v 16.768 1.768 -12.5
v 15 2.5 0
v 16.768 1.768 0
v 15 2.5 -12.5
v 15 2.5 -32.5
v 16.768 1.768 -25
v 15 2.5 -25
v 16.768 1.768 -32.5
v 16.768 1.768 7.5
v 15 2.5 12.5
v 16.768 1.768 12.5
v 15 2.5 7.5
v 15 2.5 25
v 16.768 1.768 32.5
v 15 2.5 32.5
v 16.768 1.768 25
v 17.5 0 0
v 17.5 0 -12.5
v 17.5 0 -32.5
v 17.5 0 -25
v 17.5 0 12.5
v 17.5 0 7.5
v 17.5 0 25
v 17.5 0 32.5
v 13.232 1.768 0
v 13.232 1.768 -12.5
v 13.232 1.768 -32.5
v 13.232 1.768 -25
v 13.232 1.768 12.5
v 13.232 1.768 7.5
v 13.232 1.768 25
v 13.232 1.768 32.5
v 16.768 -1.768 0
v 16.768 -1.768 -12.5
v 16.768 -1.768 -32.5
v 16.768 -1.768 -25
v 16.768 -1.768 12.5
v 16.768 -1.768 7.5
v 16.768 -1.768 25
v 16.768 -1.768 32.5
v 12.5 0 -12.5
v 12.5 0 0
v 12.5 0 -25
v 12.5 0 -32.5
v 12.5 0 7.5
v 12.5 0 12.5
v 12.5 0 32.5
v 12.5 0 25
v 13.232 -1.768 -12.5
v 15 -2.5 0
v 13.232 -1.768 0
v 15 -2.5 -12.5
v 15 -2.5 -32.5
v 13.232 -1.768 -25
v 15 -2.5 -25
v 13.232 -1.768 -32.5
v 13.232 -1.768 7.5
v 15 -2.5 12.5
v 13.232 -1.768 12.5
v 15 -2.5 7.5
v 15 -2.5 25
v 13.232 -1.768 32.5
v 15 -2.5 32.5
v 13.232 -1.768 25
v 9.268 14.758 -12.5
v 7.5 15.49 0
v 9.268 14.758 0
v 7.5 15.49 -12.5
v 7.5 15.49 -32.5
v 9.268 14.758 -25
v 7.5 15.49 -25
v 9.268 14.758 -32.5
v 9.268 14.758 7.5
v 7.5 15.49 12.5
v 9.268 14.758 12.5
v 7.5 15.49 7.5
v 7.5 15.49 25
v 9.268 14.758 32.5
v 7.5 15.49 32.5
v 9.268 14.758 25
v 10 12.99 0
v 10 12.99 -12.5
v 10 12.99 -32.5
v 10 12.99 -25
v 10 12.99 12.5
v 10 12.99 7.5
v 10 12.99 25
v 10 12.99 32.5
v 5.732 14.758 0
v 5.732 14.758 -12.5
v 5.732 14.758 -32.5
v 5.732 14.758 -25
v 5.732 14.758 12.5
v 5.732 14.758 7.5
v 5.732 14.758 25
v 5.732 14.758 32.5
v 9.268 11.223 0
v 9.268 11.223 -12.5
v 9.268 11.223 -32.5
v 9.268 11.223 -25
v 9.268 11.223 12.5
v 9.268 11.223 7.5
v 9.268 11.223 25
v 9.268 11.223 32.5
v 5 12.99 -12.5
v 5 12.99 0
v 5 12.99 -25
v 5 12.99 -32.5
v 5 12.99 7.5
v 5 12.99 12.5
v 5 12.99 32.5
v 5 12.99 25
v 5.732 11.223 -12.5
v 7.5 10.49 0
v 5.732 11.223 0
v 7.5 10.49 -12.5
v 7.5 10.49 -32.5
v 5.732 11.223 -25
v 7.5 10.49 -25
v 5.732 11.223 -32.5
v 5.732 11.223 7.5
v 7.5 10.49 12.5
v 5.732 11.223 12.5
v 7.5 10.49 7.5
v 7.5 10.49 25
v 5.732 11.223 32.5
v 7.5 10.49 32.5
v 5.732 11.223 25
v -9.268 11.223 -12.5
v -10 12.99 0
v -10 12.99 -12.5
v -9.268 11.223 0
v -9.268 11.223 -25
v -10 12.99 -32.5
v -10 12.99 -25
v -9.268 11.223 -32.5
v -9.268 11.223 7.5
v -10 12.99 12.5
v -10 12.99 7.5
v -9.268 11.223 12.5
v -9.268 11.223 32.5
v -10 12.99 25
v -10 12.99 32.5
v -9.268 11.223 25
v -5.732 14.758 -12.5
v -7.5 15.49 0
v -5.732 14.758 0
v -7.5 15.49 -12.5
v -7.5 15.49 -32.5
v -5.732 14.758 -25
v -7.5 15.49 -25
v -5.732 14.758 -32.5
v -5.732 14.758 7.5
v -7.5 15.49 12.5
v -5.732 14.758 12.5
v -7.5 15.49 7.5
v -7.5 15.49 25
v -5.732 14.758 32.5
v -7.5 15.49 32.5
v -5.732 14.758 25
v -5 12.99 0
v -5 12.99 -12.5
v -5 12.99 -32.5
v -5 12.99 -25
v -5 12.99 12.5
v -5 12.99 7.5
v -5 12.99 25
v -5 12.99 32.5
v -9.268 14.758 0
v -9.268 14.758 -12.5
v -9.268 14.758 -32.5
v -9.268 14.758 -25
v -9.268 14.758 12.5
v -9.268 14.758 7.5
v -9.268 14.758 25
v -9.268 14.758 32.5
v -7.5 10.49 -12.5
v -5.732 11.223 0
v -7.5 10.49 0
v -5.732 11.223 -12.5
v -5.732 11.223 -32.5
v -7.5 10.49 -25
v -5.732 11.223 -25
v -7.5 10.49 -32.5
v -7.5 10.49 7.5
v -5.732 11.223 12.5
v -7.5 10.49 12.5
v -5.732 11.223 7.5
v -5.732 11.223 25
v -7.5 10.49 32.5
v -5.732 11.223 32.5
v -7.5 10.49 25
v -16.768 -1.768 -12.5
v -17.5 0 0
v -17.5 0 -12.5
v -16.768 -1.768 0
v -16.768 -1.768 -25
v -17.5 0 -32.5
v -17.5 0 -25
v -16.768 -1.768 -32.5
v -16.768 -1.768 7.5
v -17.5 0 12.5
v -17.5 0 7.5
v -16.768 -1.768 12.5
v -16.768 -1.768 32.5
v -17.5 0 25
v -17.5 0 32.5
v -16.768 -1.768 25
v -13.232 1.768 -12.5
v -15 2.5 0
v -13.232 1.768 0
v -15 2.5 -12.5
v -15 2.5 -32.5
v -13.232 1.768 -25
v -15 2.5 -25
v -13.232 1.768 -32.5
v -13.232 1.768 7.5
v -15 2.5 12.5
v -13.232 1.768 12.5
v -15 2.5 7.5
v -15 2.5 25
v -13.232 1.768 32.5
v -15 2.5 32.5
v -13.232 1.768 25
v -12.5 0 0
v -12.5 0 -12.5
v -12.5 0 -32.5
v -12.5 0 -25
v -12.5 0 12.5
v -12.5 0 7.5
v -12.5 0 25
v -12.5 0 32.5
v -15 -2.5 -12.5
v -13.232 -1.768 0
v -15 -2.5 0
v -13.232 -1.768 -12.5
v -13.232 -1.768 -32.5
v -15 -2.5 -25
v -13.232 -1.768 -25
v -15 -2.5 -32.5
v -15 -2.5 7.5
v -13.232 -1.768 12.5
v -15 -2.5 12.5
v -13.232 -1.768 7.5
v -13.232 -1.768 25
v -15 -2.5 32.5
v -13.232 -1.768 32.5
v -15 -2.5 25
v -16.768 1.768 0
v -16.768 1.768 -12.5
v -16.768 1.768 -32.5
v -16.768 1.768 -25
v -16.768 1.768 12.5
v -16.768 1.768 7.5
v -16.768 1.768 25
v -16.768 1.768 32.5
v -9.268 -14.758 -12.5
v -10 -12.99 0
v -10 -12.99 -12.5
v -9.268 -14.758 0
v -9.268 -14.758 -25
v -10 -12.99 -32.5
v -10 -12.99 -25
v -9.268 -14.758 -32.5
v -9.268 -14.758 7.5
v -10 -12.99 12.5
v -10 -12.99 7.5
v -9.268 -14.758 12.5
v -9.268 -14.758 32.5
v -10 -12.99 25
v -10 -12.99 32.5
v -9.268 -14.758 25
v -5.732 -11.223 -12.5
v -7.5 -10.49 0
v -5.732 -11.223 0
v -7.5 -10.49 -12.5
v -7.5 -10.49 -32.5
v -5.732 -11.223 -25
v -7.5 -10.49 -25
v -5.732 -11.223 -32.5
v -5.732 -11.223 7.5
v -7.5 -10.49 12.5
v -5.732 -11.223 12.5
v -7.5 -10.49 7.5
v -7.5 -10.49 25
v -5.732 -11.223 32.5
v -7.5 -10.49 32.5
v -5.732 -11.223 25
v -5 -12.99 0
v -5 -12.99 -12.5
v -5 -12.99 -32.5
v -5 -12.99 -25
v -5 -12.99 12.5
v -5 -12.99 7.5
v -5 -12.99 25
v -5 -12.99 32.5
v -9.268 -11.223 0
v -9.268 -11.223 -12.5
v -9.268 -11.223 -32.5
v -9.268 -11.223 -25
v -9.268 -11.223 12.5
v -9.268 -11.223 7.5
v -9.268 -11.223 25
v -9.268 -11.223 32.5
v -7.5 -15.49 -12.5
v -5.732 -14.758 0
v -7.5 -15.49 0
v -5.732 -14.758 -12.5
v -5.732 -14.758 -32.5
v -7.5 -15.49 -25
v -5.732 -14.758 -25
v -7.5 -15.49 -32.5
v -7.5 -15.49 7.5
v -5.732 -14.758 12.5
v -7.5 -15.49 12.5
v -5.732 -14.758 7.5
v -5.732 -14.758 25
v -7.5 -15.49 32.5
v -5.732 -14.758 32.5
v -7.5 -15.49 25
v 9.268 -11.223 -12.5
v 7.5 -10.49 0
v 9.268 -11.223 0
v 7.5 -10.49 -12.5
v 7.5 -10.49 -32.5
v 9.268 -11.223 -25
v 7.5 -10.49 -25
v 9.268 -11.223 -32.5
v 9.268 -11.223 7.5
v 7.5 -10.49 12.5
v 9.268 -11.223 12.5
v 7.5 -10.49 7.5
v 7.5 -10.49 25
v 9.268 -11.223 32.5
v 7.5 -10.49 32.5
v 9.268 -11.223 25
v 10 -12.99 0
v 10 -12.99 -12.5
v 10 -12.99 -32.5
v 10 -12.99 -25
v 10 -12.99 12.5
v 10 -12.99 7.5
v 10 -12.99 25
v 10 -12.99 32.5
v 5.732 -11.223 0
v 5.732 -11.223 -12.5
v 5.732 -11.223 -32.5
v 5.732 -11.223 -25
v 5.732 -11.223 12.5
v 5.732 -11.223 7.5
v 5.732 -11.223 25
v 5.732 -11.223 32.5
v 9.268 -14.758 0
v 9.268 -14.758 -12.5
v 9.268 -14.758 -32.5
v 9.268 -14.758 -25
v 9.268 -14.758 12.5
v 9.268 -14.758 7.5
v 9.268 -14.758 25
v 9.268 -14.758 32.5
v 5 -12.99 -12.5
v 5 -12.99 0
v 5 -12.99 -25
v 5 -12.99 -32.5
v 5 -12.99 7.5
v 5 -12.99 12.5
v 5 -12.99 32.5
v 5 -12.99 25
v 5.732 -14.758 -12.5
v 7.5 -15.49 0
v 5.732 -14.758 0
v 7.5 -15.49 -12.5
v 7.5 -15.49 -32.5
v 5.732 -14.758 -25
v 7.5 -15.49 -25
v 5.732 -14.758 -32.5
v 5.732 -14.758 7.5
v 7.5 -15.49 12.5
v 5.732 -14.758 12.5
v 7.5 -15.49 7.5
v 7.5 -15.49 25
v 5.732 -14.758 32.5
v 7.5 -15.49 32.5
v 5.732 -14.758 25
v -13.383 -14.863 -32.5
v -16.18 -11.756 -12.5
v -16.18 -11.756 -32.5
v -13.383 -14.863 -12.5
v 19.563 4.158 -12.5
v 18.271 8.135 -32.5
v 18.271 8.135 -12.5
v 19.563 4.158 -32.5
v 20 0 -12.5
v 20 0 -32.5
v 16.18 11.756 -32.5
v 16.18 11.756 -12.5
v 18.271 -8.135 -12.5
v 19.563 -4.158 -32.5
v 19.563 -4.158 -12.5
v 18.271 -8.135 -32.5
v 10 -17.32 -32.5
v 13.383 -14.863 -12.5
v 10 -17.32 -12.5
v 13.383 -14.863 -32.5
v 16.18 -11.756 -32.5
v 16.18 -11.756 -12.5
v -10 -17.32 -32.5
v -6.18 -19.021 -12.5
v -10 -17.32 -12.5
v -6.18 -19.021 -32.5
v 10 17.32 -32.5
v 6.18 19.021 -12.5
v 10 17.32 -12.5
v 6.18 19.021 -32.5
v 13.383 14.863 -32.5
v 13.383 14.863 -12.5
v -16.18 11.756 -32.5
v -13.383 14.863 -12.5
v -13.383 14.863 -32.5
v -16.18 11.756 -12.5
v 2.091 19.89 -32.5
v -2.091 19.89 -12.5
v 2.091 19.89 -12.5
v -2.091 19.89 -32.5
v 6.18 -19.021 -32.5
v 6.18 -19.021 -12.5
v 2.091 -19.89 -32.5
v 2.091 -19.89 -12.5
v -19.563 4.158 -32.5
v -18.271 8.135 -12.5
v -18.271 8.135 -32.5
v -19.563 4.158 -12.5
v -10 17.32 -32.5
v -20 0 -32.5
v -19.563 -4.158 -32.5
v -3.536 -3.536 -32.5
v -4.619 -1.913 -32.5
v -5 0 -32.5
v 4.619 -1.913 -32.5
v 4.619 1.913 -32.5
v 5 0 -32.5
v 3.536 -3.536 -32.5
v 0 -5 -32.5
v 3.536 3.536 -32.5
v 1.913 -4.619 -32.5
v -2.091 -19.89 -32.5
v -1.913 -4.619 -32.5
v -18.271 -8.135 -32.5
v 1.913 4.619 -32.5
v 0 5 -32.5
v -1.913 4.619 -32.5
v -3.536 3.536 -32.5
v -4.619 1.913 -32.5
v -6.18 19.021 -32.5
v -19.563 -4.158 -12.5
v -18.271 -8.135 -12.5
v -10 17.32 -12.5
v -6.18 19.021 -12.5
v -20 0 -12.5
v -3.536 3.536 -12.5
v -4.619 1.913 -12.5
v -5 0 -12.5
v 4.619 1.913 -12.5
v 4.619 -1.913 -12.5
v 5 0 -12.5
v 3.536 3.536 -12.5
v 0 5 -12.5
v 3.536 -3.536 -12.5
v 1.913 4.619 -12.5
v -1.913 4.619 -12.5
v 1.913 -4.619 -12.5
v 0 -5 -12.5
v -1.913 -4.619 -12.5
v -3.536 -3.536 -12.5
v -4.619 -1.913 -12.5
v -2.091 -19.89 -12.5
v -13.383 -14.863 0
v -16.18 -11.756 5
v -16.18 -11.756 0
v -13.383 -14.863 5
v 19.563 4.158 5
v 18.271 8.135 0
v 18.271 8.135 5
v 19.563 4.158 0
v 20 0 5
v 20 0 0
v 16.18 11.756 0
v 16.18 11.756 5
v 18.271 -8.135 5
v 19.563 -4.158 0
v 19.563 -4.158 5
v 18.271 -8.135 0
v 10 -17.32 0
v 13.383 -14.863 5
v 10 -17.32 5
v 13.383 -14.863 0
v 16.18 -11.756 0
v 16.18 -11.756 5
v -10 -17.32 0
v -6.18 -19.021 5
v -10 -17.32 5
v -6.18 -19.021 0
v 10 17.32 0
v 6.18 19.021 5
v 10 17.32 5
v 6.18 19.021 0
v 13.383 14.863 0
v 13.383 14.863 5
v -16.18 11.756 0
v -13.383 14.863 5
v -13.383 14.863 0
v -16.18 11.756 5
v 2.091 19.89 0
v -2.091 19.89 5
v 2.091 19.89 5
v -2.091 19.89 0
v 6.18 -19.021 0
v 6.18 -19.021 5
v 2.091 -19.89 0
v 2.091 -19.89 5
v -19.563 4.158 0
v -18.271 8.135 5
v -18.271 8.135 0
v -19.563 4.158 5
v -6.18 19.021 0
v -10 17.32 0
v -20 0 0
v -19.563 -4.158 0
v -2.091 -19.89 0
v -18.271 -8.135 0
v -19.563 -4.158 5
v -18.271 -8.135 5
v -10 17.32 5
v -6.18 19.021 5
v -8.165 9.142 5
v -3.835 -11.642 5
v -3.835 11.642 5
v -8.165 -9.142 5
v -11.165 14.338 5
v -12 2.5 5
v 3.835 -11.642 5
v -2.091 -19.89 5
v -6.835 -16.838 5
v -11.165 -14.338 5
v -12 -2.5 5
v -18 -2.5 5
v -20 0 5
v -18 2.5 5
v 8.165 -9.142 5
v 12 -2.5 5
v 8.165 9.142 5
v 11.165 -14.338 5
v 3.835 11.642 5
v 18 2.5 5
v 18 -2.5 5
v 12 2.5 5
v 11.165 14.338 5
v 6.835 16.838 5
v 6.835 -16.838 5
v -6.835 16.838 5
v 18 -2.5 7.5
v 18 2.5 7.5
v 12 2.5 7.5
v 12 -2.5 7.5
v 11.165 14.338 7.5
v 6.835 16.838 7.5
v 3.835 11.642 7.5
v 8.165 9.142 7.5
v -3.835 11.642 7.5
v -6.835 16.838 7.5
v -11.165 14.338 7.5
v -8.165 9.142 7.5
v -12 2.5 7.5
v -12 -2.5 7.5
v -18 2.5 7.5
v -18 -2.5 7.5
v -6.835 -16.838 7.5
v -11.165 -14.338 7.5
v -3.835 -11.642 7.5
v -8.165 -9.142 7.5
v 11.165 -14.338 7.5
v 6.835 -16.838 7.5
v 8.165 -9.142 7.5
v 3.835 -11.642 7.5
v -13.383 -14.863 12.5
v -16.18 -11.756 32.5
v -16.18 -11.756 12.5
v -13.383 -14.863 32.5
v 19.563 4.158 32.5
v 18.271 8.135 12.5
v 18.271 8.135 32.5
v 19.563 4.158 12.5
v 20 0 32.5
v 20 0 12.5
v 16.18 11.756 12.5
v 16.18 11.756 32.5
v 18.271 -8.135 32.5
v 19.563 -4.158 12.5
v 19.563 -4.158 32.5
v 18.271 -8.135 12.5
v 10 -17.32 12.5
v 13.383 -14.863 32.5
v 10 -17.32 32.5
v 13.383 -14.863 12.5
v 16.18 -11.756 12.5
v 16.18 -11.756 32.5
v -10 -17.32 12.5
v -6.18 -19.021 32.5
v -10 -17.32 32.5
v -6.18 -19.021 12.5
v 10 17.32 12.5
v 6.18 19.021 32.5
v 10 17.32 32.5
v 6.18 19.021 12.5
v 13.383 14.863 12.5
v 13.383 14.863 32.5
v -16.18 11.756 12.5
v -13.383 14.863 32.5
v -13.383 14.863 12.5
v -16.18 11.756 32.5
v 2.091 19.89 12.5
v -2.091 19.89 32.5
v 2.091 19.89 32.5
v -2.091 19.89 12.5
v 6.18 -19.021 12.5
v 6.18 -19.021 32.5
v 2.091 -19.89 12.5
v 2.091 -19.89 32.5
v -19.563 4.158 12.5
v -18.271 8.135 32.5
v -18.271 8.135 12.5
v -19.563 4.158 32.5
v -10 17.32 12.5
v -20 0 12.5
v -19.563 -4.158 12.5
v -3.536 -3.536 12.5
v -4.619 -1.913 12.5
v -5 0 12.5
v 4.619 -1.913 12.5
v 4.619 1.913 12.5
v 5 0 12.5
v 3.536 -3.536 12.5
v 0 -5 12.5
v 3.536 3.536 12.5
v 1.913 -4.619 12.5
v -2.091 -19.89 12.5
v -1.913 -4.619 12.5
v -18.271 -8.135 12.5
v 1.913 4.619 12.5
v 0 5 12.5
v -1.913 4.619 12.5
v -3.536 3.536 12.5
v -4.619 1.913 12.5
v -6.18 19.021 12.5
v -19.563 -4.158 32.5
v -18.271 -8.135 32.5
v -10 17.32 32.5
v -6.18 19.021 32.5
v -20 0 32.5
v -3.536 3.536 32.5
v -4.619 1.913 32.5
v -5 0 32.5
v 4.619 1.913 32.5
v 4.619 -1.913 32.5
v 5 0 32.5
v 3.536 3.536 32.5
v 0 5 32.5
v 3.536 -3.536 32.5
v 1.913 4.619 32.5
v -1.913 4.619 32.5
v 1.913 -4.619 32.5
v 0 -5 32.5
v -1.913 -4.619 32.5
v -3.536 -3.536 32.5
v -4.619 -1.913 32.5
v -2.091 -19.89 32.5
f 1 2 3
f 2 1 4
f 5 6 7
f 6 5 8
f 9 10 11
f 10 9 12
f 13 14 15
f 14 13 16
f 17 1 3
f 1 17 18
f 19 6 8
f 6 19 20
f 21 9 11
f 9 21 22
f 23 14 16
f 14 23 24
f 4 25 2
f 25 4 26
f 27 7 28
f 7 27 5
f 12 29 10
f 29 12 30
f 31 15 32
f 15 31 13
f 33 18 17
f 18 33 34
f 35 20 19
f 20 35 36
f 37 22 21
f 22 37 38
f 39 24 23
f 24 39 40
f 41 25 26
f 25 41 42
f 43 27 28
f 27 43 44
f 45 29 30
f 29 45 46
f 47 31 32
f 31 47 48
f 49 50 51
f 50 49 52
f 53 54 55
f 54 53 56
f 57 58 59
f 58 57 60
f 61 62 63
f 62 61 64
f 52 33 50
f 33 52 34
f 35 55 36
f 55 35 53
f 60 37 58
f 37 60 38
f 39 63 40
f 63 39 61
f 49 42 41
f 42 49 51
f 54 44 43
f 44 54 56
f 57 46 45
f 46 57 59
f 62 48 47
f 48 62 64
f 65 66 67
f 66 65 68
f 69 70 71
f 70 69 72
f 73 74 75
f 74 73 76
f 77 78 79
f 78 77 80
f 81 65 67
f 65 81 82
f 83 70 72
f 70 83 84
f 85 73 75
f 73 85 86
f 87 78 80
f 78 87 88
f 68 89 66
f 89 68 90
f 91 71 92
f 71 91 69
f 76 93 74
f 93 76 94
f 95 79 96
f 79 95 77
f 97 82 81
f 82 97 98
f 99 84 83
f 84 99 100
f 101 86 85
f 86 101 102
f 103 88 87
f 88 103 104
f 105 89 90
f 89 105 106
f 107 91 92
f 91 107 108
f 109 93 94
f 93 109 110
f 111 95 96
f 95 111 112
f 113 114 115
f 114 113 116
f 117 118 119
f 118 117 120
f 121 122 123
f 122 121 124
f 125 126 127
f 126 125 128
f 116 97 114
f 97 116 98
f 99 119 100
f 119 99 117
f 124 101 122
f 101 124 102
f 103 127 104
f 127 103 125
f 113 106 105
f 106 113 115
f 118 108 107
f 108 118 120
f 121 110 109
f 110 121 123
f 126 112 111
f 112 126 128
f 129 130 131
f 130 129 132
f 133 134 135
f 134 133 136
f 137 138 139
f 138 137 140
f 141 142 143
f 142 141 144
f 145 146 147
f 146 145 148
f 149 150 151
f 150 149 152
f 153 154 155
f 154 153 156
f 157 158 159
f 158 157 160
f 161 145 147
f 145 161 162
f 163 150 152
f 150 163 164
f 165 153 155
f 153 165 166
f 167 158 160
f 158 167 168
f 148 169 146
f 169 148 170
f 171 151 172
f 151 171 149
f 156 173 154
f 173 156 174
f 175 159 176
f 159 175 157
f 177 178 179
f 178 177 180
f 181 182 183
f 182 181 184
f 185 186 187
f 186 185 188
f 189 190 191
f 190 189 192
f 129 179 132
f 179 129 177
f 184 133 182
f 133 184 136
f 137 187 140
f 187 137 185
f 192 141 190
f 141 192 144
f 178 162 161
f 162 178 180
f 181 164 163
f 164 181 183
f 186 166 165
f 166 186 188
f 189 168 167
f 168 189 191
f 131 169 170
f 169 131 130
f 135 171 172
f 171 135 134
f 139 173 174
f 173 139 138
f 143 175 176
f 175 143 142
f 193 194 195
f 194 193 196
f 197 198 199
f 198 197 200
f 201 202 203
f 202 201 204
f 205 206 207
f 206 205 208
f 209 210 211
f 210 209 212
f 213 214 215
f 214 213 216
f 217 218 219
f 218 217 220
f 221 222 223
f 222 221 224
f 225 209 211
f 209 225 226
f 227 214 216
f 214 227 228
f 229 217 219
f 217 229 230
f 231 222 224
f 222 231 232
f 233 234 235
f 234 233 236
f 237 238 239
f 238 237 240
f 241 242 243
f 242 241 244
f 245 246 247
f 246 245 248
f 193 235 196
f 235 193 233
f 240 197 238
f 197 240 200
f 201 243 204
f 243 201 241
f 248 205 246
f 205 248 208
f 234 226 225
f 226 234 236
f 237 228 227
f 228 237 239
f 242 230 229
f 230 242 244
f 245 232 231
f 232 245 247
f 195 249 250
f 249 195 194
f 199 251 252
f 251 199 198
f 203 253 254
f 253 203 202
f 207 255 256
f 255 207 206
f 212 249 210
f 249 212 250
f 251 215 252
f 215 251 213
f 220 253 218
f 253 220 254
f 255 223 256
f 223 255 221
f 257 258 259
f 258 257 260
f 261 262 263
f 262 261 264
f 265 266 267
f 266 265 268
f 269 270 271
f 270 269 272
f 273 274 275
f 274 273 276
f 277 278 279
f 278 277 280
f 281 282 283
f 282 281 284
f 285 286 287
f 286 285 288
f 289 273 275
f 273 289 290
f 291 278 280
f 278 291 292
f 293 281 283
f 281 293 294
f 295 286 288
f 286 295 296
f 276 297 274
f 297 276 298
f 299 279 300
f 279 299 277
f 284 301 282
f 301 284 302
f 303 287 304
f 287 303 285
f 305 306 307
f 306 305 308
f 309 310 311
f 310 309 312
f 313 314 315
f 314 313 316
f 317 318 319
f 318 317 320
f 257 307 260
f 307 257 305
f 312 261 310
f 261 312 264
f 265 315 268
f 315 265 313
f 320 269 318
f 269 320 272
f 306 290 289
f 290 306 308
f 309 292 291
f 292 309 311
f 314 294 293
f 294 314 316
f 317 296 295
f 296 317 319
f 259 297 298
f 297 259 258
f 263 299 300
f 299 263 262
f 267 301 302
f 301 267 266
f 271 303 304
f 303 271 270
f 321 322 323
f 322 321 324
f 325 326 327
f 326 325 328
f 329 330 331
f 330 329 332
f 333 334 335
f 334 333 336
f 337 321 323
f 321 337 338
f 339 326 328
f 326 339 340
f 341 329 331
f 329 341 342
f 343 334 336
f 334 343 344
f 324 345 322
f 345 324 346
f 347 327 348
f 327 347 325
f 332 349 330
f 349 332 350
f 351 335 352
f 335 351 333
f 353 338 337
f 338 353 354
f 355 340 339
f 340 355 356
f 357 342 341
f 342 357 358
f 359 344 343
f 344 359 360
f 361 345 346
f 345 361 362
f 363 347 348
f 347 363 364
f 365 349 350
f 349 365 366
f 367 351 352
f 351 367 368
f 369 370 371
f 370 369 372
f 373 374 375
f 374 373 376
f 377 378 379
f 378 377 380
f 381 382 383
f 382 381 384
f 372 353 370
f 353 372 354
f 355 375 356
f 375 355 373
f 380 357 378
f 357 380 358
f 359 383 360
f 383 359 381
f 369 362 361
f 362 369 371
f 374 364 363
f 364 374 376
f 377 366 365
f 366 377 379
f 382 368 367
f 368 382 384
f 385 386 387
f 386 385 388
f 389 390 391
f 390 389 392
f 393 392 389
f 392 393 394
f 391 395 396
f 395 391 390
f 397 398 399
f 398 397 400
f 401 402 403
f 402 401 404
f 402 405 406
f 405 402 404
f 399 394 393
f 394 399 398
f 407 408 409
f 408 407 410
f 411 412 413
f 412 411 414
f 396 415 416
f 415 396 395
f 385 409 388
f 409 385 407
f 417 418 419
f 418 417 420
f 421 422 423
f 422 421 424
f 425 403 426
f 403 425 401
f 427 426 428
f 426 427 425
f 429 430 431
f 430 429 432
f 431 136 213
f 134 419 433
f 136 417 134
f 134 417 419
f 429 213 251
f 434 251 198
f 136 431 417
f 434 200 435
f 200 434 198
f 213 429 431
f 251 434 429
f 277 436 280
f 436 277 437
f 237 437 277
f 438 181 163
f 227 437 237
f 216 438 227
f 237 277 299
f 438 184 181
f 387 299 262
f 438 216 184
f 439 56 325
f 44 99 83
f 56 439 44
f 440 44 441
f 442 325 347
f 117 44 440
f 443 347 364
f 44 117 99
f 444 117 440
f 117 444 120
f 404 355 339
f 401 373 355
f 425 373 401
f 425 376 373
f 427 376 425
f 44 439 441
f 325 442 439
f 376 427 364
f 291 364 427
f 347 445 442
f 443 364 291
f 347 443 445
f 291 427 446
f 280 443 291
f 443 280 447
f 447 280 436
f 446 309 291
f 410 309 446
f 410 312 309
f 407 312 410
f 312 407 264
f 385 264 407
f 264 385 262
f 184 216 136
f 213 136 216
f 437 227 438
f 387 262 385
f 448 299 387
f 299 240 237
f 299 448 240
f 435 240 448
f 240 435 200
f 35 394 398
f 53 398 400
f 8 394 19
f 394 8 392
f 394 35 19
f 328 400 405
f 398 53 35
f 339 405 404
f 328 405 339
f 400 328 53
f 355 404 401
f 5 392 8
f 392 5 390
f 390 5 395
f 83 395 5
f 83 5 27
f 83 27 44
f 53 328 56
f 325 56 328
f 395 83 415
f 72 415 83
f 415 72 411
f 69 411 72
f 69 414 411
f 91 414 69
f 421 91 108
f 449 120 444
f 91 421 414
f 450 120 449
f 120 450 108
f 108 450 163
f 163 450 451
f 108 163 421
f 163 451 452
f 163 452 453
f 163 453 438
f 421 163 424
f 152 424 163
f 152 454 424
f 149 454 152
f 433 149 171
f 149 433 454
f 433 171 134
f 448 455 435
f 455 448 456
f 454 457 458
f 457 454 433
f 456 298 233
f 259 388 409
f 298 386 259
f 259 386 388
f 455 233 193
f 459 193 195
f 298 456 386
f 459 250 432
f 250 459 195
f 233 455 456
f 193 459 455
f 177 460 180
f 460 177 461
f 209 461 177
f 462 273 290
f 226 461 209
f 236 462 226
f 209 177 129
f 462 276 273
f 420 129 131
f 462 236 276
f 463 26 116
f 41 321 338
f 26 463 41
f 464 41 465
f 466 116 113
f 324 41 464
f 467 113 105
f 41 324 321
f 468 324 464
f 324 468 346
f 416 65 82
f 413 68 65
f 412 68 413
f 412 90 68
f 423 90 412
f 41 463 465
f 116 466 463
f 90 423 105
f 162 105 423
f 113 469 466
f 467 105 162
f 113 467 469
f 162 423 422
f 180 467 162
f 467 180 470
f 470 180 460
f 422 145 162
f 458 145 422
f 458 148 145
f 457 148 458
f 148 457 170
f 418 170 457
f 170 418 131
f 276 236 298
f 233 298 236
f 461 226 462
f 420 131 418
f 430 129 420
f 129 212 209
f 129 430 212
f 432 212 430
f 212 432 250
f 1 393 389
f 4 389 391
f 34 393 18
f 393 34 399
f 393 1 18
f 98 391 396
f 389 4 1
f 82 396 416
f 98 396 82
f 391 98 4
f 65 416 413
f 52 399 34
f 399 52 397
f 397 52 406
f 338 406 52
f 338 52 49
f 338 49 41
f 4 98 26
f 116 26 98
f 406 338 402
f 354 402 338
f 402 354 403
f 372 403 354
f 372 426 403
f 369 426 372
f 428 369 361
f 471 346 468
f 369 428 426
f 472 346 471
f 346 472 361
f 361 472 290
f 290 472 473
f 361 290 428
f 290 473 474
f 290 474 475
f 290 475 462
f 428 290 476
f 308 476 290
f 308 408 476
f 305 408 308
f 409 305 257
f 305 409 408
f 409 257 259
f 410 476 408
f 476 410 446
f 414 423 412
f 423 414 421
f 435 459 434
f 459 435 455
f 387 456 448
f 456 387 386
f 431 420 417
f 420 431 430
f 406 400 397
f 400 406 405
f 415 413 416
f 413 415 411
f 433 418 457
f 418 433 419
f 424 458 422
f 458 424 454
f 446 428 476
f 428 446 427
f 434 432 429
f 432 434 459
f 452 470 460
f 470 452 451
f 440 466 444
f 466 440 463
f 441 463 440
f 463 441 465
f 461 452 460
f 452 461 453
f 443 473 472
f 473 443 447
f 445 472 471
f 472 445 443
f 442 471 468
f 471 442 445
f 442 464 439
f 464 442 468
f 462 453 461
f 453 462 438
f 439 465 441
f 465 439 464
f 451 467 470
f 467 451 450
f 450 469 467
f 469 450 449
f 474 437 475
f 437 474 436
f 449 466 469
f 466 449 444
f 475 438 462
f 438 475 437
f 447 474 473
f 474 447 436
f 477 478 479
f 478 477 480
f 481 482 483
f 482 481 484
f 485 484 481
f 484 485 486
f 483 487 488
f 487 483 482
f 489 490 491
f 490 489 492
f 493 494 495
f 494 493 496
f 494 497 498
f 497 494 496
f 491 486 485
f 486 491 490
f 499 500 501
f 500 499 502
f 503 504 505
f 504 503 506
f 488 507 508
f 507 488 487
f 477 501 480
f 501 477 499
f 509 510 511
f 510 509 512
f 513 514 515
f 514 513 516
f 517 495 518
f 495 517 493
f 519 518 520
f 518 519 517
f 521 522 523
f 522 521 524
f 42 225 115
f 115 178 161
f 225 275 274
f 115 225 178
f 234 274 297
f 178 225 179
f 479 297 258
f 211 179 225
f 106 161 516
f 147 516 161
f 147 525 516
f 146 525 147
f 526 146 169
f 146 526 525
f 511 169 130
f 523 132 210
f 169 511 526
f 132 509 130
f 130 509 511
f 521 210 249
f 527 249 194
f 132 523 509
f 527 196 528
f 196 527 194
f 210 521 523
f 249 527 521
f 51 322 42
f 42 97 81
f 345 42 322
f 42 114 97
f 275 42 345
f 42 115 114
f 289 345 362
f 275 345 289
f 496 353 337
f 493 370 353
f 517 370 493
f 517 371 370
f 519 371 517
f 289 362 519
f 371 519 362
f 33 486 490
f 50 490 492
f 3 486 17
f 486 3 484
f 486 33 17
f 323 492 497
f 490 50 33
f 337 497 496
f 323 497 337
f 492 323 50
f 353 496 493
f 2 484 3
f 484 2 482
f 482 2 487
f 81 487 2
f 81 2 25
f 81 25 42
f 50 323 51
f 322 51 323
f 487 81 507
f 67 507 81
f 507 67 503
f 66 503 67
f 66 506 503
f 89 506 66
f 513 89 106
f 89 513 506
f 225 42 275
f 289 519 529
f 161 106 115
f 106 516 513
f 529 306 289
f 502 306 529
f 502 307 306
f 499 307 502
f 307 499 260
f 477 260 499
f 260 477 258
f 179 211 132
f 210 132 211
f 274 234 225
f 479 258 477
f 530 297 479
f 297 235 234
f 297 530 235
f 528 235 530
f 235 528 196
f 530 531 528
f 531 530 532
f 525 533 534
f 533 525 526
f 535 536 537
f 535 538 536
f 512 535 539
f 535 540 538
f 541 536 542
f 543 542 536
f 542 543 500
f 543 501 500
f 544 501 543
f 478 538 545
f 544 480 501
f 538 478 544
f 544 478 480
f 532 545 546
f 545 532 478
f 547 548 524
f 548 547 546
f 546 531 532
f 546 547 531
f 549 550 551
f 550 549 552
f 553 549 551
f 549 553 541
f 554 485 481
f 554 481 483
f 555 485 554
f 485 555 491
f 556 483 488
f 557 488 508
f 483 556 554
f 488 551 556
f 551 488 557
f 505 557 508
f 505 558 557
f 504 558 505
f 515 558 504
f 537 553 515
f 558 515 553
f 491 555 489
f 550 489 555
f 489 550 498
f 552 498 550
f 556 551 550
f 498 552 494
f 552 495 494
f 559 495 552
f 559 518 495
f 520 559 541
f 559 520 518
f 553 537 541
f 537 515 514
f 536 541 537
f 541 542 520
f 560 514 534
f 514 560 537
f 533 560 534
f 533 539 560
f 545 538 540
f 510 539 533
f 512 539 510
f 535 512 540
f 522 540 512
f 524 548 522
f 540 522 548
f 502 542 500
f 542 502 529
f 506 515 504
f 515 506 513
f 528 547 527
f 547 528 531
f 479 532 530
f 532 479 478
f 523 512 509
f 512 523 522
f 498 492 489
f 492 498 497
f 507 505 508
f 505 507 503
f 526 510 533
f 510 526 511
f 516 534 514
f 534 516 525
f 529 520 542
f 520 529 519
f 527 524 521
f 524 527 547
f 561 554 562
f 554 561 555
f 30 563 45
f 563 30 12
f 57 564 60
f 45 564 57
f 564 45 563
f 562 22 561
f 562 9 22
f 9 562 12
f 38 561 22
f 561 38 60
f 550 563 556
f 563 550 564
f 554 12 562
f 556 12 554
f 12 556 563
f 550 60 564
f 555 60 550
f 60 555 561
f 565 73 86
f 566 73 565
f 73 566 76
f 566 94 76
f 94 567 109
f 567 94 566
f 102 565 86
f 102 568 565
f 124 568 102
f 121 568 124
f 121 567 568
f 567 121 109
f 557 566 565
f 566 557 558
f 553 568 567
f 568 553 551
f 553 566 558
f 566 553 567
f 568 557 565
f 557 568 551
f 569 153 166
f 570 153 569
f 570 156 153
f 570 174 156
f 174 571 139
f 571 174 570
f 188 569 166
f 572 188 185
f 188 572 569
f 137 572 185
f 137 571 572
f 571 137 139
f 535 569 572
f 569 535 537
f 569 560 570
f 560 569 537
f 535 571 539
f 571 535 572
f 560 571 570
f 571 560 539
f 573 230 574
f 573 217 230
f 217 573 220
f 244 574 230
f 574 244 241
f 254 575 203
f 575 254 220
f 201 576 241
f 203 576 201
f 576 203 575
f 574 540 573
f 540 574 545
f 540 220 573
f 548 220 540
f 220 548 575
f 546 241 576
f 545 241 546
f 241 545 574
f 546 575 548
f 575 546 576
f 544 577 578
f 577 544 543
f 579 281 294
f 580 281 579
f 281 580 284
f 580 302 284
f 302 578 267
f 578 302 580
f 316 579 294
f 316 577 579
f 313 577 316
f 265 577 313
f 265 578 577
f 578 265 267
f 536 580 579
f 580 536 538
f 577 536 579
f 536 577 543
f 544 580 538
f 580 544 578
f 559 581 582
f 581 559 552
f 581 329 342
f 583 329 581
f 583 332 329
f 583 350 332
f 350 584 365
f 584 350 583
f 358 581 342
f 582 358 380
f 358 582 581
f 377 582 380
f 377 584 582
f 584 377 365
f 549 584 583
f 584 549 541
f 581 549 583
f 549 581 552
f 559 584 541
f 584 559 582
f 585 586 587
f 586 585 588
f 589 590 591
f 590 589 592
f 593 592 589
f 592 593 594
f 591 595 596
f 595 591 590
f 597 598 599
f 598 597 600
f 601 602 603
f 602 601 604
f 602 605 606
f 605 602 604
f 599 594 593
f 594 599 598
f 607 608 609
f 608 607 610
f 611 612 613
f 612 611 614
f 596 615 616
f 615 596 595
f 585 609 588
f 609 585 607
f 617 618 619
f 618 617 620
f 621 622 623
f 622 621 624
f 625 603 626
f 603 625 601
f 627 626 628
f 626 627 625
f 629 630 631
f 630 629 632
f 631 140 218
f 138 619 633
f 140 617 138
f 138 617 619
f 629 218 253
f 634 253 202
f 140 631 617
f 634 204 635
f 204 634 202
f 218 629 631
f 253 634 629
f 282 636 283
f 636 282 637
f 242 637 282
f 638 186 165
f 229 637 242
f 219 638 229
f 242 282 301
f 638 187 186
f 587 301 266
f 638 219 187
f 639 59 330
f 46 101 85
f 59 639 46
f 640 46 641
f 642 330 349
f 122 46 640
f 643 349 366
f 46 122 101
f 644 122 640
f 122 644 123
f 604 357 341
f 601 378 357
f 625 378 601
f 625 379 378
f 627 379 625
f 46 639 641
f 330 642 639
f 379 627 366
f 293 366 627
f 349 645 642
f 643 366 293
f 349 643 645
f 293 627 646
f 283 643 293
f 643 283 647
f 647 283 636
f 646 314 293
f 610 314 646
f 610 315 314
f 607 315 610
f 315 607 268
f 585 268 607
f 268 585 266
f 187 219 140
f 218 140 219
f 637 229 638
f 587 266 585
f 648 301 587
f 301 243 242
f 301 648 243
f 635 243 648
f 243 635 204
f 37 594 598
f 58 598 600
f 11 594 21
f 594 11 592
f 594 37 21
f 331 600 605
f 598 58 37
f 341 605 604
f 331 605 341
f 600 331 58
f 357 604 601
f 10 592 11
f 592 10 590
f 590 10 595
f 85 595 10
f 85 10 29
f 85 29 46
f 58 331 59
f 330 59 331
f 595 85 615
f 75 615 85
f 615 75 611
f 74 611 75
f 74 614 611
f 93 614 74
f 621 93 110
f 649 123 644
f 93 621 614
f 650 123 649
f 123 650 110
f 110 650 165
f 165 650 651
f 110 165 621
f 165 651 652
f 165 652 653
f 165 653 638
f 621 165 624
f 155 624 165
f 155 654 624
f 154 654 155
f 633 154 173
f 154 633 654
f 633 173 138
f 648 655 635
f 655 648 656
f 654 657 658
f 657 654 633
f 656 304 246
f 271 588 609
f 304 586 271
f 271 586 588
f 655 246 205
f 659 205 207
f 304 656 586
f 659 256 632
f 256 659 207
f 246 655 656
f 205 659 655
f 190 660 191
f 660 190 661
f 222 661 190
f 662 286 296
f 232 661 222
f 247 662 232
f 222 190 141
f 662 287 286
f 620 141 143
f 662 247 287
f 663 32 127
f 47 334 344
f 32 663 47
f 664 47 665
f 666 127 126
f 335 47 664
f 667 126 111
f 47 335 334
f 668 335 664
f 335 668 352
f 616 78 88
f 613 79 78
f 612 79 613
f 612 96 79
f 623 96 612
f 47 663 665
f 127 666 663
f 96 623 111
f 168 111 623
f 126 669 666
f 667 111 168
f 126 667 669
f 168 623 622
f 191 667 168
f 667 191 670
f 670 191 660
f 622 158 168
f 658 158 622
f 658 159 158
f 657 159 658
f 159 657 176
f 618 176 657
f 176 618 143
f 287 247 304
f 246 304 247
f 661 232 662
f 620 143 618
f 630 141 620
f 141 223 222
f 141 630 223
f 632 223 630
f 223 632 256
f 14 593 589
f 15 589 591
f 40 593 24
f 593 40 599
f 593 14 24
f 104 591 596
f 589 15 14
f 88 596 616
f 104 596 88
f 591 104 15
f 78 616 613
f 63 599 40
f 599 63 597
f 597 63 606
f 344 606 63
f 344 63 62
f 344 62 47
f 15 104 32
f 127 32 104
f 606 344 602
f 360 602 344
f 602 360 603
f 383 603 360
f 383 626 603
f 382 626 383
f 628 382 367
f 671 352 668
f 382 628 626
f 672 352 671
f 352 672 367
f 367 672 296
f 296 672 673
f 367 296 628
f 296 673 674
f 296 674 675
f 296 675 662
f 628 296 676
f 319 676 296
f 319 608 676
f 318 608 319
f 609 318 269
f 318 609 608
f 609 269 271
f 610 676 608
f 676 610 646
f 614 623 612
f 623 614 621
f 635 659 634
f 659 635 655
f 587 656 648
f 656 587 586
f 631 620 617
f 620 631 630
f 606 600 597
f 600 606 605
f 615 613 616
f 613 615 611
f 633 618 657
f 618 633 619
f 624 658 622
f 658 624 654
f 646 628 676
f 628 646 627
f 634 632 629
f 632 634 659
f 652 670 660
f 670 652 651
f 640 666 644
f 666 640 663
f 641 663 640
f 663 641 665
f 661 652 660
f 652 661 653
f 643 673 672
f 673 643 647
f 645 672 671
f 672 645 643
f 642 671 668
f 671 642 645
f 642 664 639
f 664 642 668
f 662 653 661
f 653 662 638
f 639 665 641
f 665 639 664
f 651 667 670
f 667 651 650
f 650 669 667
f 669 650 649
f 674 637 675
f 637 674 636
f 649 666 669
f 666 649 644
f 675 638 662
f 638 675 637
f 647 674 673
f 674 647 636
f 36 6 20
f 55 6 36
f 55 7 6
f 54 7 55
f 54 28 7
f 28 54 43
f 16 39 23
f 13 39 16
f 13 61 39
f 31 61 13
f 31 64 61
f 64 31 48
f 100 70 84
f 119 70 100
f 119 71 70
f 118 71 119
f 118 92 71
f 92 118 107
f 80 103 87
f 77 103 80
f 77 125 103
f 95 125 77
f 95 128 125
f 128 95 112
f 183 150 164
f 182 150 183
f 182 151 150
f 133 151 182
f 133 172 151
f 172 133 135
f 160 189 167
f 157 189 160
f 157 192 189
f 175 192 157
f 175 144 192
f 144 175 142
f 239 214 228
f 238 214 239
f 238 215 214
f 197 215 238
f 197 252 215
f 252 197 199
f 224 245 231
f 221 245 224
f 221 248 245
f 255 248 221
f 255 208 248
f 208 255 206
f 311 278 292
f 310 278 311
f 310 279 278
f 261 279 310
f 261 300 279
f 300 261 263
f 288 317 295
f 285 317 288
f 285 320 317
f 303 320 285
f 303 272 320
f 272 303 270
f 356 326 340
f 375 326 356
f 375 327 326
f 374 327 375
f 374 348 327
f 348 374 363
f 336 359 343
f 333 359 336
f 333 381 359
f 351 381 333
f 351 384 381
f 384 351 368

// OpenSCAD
// Parameters
hub_diameter = 40;
hub_length = 20;
shaft_hole_diameter = 10;
bolt_hole_diameter = 5;
bolt_circle_diameter = 30;
num_bolts = 6;
flexible_element_thickness = 5;
flexible_element_wavy_depth = 3;

// Function to create a hub
module hub() {
    difference() {
        cylinder(d=hub_diameter, h=hub_length, center=true);
        cylinder(d=shaft_hole_diameter, h=hub_length + 2, center=true);
        
        for (i = [0:num_bolts-1]) {
            angle = i * 360 / num_bolts;
            x = bolt_circle_diameter / 2 * cos(angle);
            y = bolt_circle_diameter / 2 * sin(angle);
            translate([x, y, 0])
                cylinder(d=bolt_hole_diameter, h=hub_length + 2, center=true);
        }
    }
}

// Function to create the flexible element
module flexible_element() {
    difference() {
        cylinder(d=hub_diameter, h=flexible_element_thickness, center=true);
        
        for (i = [0:num_bolts-1]) {
            angle = i * 360 / num_bolts;
            x = bolt_circle_diameter / 2 * cos(angle);
            y = bolt_circle_diameter / 2 * sin(angle);
            translate([x, y, 0])
                cylinder(d=bolt_hole_diameter, h=flexible_element_thickness + 2, center=true);
        }
    }
    
    for (i = [0:num_bolts-1]) {
        angle = i * 360 / num_bolts;
        x = bolt_circle_diameter / 2 * cos(angle);
        y = bolt_circle_diameter / 2 * sin(angle);
        translate([x, y, 0])
            rotate([0, 0, angle])
                translate([-flexible_element_wavy_depth, -flexible_element_thickness/2, 0])
                    cube([flexible_element_wavy_depth * 2, flexible_element_thickness, flexible_element_thickness]);
    }
}

// Function to create a fastening bolt
module bolt() {
    cylinder(d=bolt_hole_diameter, h=hub_length * 2 + flexible_element_thickness, center=true);
}

// Function to create a nut
module nut() {
    cylinder(d=bolt_hole_diameter * 1.5, h=bolt_hole_diameter, center=true);
}

// Assembly
module coupling() {
    translate([0, 0, -hub_length - flexible_element_thickness/2])
        hub();
    
    translate([0, 0, flexible_element_thickness/2])
        flexible_element();
    
    translate([0, 0, hub_length + flexible_element_thickness/2])
        hub();
    
    for (i = [0:num_bolts-1]) {
        angle = i * 360 / num_bolts;
        x = bolt_circle_diameter / 2 * cos(angle);
        y = bolt_circle_diameter / 2 * sin(angle);
        
        translate([x, y, 0])
            bolt();
        
        translate([x, y, -hub_length - flexible_element_thickness/2])
            nut();
        
        translate([x, y, hub_length + flexible_element_thickness/2])
            nut();
    }
}

// Render the coupling
coupling();
